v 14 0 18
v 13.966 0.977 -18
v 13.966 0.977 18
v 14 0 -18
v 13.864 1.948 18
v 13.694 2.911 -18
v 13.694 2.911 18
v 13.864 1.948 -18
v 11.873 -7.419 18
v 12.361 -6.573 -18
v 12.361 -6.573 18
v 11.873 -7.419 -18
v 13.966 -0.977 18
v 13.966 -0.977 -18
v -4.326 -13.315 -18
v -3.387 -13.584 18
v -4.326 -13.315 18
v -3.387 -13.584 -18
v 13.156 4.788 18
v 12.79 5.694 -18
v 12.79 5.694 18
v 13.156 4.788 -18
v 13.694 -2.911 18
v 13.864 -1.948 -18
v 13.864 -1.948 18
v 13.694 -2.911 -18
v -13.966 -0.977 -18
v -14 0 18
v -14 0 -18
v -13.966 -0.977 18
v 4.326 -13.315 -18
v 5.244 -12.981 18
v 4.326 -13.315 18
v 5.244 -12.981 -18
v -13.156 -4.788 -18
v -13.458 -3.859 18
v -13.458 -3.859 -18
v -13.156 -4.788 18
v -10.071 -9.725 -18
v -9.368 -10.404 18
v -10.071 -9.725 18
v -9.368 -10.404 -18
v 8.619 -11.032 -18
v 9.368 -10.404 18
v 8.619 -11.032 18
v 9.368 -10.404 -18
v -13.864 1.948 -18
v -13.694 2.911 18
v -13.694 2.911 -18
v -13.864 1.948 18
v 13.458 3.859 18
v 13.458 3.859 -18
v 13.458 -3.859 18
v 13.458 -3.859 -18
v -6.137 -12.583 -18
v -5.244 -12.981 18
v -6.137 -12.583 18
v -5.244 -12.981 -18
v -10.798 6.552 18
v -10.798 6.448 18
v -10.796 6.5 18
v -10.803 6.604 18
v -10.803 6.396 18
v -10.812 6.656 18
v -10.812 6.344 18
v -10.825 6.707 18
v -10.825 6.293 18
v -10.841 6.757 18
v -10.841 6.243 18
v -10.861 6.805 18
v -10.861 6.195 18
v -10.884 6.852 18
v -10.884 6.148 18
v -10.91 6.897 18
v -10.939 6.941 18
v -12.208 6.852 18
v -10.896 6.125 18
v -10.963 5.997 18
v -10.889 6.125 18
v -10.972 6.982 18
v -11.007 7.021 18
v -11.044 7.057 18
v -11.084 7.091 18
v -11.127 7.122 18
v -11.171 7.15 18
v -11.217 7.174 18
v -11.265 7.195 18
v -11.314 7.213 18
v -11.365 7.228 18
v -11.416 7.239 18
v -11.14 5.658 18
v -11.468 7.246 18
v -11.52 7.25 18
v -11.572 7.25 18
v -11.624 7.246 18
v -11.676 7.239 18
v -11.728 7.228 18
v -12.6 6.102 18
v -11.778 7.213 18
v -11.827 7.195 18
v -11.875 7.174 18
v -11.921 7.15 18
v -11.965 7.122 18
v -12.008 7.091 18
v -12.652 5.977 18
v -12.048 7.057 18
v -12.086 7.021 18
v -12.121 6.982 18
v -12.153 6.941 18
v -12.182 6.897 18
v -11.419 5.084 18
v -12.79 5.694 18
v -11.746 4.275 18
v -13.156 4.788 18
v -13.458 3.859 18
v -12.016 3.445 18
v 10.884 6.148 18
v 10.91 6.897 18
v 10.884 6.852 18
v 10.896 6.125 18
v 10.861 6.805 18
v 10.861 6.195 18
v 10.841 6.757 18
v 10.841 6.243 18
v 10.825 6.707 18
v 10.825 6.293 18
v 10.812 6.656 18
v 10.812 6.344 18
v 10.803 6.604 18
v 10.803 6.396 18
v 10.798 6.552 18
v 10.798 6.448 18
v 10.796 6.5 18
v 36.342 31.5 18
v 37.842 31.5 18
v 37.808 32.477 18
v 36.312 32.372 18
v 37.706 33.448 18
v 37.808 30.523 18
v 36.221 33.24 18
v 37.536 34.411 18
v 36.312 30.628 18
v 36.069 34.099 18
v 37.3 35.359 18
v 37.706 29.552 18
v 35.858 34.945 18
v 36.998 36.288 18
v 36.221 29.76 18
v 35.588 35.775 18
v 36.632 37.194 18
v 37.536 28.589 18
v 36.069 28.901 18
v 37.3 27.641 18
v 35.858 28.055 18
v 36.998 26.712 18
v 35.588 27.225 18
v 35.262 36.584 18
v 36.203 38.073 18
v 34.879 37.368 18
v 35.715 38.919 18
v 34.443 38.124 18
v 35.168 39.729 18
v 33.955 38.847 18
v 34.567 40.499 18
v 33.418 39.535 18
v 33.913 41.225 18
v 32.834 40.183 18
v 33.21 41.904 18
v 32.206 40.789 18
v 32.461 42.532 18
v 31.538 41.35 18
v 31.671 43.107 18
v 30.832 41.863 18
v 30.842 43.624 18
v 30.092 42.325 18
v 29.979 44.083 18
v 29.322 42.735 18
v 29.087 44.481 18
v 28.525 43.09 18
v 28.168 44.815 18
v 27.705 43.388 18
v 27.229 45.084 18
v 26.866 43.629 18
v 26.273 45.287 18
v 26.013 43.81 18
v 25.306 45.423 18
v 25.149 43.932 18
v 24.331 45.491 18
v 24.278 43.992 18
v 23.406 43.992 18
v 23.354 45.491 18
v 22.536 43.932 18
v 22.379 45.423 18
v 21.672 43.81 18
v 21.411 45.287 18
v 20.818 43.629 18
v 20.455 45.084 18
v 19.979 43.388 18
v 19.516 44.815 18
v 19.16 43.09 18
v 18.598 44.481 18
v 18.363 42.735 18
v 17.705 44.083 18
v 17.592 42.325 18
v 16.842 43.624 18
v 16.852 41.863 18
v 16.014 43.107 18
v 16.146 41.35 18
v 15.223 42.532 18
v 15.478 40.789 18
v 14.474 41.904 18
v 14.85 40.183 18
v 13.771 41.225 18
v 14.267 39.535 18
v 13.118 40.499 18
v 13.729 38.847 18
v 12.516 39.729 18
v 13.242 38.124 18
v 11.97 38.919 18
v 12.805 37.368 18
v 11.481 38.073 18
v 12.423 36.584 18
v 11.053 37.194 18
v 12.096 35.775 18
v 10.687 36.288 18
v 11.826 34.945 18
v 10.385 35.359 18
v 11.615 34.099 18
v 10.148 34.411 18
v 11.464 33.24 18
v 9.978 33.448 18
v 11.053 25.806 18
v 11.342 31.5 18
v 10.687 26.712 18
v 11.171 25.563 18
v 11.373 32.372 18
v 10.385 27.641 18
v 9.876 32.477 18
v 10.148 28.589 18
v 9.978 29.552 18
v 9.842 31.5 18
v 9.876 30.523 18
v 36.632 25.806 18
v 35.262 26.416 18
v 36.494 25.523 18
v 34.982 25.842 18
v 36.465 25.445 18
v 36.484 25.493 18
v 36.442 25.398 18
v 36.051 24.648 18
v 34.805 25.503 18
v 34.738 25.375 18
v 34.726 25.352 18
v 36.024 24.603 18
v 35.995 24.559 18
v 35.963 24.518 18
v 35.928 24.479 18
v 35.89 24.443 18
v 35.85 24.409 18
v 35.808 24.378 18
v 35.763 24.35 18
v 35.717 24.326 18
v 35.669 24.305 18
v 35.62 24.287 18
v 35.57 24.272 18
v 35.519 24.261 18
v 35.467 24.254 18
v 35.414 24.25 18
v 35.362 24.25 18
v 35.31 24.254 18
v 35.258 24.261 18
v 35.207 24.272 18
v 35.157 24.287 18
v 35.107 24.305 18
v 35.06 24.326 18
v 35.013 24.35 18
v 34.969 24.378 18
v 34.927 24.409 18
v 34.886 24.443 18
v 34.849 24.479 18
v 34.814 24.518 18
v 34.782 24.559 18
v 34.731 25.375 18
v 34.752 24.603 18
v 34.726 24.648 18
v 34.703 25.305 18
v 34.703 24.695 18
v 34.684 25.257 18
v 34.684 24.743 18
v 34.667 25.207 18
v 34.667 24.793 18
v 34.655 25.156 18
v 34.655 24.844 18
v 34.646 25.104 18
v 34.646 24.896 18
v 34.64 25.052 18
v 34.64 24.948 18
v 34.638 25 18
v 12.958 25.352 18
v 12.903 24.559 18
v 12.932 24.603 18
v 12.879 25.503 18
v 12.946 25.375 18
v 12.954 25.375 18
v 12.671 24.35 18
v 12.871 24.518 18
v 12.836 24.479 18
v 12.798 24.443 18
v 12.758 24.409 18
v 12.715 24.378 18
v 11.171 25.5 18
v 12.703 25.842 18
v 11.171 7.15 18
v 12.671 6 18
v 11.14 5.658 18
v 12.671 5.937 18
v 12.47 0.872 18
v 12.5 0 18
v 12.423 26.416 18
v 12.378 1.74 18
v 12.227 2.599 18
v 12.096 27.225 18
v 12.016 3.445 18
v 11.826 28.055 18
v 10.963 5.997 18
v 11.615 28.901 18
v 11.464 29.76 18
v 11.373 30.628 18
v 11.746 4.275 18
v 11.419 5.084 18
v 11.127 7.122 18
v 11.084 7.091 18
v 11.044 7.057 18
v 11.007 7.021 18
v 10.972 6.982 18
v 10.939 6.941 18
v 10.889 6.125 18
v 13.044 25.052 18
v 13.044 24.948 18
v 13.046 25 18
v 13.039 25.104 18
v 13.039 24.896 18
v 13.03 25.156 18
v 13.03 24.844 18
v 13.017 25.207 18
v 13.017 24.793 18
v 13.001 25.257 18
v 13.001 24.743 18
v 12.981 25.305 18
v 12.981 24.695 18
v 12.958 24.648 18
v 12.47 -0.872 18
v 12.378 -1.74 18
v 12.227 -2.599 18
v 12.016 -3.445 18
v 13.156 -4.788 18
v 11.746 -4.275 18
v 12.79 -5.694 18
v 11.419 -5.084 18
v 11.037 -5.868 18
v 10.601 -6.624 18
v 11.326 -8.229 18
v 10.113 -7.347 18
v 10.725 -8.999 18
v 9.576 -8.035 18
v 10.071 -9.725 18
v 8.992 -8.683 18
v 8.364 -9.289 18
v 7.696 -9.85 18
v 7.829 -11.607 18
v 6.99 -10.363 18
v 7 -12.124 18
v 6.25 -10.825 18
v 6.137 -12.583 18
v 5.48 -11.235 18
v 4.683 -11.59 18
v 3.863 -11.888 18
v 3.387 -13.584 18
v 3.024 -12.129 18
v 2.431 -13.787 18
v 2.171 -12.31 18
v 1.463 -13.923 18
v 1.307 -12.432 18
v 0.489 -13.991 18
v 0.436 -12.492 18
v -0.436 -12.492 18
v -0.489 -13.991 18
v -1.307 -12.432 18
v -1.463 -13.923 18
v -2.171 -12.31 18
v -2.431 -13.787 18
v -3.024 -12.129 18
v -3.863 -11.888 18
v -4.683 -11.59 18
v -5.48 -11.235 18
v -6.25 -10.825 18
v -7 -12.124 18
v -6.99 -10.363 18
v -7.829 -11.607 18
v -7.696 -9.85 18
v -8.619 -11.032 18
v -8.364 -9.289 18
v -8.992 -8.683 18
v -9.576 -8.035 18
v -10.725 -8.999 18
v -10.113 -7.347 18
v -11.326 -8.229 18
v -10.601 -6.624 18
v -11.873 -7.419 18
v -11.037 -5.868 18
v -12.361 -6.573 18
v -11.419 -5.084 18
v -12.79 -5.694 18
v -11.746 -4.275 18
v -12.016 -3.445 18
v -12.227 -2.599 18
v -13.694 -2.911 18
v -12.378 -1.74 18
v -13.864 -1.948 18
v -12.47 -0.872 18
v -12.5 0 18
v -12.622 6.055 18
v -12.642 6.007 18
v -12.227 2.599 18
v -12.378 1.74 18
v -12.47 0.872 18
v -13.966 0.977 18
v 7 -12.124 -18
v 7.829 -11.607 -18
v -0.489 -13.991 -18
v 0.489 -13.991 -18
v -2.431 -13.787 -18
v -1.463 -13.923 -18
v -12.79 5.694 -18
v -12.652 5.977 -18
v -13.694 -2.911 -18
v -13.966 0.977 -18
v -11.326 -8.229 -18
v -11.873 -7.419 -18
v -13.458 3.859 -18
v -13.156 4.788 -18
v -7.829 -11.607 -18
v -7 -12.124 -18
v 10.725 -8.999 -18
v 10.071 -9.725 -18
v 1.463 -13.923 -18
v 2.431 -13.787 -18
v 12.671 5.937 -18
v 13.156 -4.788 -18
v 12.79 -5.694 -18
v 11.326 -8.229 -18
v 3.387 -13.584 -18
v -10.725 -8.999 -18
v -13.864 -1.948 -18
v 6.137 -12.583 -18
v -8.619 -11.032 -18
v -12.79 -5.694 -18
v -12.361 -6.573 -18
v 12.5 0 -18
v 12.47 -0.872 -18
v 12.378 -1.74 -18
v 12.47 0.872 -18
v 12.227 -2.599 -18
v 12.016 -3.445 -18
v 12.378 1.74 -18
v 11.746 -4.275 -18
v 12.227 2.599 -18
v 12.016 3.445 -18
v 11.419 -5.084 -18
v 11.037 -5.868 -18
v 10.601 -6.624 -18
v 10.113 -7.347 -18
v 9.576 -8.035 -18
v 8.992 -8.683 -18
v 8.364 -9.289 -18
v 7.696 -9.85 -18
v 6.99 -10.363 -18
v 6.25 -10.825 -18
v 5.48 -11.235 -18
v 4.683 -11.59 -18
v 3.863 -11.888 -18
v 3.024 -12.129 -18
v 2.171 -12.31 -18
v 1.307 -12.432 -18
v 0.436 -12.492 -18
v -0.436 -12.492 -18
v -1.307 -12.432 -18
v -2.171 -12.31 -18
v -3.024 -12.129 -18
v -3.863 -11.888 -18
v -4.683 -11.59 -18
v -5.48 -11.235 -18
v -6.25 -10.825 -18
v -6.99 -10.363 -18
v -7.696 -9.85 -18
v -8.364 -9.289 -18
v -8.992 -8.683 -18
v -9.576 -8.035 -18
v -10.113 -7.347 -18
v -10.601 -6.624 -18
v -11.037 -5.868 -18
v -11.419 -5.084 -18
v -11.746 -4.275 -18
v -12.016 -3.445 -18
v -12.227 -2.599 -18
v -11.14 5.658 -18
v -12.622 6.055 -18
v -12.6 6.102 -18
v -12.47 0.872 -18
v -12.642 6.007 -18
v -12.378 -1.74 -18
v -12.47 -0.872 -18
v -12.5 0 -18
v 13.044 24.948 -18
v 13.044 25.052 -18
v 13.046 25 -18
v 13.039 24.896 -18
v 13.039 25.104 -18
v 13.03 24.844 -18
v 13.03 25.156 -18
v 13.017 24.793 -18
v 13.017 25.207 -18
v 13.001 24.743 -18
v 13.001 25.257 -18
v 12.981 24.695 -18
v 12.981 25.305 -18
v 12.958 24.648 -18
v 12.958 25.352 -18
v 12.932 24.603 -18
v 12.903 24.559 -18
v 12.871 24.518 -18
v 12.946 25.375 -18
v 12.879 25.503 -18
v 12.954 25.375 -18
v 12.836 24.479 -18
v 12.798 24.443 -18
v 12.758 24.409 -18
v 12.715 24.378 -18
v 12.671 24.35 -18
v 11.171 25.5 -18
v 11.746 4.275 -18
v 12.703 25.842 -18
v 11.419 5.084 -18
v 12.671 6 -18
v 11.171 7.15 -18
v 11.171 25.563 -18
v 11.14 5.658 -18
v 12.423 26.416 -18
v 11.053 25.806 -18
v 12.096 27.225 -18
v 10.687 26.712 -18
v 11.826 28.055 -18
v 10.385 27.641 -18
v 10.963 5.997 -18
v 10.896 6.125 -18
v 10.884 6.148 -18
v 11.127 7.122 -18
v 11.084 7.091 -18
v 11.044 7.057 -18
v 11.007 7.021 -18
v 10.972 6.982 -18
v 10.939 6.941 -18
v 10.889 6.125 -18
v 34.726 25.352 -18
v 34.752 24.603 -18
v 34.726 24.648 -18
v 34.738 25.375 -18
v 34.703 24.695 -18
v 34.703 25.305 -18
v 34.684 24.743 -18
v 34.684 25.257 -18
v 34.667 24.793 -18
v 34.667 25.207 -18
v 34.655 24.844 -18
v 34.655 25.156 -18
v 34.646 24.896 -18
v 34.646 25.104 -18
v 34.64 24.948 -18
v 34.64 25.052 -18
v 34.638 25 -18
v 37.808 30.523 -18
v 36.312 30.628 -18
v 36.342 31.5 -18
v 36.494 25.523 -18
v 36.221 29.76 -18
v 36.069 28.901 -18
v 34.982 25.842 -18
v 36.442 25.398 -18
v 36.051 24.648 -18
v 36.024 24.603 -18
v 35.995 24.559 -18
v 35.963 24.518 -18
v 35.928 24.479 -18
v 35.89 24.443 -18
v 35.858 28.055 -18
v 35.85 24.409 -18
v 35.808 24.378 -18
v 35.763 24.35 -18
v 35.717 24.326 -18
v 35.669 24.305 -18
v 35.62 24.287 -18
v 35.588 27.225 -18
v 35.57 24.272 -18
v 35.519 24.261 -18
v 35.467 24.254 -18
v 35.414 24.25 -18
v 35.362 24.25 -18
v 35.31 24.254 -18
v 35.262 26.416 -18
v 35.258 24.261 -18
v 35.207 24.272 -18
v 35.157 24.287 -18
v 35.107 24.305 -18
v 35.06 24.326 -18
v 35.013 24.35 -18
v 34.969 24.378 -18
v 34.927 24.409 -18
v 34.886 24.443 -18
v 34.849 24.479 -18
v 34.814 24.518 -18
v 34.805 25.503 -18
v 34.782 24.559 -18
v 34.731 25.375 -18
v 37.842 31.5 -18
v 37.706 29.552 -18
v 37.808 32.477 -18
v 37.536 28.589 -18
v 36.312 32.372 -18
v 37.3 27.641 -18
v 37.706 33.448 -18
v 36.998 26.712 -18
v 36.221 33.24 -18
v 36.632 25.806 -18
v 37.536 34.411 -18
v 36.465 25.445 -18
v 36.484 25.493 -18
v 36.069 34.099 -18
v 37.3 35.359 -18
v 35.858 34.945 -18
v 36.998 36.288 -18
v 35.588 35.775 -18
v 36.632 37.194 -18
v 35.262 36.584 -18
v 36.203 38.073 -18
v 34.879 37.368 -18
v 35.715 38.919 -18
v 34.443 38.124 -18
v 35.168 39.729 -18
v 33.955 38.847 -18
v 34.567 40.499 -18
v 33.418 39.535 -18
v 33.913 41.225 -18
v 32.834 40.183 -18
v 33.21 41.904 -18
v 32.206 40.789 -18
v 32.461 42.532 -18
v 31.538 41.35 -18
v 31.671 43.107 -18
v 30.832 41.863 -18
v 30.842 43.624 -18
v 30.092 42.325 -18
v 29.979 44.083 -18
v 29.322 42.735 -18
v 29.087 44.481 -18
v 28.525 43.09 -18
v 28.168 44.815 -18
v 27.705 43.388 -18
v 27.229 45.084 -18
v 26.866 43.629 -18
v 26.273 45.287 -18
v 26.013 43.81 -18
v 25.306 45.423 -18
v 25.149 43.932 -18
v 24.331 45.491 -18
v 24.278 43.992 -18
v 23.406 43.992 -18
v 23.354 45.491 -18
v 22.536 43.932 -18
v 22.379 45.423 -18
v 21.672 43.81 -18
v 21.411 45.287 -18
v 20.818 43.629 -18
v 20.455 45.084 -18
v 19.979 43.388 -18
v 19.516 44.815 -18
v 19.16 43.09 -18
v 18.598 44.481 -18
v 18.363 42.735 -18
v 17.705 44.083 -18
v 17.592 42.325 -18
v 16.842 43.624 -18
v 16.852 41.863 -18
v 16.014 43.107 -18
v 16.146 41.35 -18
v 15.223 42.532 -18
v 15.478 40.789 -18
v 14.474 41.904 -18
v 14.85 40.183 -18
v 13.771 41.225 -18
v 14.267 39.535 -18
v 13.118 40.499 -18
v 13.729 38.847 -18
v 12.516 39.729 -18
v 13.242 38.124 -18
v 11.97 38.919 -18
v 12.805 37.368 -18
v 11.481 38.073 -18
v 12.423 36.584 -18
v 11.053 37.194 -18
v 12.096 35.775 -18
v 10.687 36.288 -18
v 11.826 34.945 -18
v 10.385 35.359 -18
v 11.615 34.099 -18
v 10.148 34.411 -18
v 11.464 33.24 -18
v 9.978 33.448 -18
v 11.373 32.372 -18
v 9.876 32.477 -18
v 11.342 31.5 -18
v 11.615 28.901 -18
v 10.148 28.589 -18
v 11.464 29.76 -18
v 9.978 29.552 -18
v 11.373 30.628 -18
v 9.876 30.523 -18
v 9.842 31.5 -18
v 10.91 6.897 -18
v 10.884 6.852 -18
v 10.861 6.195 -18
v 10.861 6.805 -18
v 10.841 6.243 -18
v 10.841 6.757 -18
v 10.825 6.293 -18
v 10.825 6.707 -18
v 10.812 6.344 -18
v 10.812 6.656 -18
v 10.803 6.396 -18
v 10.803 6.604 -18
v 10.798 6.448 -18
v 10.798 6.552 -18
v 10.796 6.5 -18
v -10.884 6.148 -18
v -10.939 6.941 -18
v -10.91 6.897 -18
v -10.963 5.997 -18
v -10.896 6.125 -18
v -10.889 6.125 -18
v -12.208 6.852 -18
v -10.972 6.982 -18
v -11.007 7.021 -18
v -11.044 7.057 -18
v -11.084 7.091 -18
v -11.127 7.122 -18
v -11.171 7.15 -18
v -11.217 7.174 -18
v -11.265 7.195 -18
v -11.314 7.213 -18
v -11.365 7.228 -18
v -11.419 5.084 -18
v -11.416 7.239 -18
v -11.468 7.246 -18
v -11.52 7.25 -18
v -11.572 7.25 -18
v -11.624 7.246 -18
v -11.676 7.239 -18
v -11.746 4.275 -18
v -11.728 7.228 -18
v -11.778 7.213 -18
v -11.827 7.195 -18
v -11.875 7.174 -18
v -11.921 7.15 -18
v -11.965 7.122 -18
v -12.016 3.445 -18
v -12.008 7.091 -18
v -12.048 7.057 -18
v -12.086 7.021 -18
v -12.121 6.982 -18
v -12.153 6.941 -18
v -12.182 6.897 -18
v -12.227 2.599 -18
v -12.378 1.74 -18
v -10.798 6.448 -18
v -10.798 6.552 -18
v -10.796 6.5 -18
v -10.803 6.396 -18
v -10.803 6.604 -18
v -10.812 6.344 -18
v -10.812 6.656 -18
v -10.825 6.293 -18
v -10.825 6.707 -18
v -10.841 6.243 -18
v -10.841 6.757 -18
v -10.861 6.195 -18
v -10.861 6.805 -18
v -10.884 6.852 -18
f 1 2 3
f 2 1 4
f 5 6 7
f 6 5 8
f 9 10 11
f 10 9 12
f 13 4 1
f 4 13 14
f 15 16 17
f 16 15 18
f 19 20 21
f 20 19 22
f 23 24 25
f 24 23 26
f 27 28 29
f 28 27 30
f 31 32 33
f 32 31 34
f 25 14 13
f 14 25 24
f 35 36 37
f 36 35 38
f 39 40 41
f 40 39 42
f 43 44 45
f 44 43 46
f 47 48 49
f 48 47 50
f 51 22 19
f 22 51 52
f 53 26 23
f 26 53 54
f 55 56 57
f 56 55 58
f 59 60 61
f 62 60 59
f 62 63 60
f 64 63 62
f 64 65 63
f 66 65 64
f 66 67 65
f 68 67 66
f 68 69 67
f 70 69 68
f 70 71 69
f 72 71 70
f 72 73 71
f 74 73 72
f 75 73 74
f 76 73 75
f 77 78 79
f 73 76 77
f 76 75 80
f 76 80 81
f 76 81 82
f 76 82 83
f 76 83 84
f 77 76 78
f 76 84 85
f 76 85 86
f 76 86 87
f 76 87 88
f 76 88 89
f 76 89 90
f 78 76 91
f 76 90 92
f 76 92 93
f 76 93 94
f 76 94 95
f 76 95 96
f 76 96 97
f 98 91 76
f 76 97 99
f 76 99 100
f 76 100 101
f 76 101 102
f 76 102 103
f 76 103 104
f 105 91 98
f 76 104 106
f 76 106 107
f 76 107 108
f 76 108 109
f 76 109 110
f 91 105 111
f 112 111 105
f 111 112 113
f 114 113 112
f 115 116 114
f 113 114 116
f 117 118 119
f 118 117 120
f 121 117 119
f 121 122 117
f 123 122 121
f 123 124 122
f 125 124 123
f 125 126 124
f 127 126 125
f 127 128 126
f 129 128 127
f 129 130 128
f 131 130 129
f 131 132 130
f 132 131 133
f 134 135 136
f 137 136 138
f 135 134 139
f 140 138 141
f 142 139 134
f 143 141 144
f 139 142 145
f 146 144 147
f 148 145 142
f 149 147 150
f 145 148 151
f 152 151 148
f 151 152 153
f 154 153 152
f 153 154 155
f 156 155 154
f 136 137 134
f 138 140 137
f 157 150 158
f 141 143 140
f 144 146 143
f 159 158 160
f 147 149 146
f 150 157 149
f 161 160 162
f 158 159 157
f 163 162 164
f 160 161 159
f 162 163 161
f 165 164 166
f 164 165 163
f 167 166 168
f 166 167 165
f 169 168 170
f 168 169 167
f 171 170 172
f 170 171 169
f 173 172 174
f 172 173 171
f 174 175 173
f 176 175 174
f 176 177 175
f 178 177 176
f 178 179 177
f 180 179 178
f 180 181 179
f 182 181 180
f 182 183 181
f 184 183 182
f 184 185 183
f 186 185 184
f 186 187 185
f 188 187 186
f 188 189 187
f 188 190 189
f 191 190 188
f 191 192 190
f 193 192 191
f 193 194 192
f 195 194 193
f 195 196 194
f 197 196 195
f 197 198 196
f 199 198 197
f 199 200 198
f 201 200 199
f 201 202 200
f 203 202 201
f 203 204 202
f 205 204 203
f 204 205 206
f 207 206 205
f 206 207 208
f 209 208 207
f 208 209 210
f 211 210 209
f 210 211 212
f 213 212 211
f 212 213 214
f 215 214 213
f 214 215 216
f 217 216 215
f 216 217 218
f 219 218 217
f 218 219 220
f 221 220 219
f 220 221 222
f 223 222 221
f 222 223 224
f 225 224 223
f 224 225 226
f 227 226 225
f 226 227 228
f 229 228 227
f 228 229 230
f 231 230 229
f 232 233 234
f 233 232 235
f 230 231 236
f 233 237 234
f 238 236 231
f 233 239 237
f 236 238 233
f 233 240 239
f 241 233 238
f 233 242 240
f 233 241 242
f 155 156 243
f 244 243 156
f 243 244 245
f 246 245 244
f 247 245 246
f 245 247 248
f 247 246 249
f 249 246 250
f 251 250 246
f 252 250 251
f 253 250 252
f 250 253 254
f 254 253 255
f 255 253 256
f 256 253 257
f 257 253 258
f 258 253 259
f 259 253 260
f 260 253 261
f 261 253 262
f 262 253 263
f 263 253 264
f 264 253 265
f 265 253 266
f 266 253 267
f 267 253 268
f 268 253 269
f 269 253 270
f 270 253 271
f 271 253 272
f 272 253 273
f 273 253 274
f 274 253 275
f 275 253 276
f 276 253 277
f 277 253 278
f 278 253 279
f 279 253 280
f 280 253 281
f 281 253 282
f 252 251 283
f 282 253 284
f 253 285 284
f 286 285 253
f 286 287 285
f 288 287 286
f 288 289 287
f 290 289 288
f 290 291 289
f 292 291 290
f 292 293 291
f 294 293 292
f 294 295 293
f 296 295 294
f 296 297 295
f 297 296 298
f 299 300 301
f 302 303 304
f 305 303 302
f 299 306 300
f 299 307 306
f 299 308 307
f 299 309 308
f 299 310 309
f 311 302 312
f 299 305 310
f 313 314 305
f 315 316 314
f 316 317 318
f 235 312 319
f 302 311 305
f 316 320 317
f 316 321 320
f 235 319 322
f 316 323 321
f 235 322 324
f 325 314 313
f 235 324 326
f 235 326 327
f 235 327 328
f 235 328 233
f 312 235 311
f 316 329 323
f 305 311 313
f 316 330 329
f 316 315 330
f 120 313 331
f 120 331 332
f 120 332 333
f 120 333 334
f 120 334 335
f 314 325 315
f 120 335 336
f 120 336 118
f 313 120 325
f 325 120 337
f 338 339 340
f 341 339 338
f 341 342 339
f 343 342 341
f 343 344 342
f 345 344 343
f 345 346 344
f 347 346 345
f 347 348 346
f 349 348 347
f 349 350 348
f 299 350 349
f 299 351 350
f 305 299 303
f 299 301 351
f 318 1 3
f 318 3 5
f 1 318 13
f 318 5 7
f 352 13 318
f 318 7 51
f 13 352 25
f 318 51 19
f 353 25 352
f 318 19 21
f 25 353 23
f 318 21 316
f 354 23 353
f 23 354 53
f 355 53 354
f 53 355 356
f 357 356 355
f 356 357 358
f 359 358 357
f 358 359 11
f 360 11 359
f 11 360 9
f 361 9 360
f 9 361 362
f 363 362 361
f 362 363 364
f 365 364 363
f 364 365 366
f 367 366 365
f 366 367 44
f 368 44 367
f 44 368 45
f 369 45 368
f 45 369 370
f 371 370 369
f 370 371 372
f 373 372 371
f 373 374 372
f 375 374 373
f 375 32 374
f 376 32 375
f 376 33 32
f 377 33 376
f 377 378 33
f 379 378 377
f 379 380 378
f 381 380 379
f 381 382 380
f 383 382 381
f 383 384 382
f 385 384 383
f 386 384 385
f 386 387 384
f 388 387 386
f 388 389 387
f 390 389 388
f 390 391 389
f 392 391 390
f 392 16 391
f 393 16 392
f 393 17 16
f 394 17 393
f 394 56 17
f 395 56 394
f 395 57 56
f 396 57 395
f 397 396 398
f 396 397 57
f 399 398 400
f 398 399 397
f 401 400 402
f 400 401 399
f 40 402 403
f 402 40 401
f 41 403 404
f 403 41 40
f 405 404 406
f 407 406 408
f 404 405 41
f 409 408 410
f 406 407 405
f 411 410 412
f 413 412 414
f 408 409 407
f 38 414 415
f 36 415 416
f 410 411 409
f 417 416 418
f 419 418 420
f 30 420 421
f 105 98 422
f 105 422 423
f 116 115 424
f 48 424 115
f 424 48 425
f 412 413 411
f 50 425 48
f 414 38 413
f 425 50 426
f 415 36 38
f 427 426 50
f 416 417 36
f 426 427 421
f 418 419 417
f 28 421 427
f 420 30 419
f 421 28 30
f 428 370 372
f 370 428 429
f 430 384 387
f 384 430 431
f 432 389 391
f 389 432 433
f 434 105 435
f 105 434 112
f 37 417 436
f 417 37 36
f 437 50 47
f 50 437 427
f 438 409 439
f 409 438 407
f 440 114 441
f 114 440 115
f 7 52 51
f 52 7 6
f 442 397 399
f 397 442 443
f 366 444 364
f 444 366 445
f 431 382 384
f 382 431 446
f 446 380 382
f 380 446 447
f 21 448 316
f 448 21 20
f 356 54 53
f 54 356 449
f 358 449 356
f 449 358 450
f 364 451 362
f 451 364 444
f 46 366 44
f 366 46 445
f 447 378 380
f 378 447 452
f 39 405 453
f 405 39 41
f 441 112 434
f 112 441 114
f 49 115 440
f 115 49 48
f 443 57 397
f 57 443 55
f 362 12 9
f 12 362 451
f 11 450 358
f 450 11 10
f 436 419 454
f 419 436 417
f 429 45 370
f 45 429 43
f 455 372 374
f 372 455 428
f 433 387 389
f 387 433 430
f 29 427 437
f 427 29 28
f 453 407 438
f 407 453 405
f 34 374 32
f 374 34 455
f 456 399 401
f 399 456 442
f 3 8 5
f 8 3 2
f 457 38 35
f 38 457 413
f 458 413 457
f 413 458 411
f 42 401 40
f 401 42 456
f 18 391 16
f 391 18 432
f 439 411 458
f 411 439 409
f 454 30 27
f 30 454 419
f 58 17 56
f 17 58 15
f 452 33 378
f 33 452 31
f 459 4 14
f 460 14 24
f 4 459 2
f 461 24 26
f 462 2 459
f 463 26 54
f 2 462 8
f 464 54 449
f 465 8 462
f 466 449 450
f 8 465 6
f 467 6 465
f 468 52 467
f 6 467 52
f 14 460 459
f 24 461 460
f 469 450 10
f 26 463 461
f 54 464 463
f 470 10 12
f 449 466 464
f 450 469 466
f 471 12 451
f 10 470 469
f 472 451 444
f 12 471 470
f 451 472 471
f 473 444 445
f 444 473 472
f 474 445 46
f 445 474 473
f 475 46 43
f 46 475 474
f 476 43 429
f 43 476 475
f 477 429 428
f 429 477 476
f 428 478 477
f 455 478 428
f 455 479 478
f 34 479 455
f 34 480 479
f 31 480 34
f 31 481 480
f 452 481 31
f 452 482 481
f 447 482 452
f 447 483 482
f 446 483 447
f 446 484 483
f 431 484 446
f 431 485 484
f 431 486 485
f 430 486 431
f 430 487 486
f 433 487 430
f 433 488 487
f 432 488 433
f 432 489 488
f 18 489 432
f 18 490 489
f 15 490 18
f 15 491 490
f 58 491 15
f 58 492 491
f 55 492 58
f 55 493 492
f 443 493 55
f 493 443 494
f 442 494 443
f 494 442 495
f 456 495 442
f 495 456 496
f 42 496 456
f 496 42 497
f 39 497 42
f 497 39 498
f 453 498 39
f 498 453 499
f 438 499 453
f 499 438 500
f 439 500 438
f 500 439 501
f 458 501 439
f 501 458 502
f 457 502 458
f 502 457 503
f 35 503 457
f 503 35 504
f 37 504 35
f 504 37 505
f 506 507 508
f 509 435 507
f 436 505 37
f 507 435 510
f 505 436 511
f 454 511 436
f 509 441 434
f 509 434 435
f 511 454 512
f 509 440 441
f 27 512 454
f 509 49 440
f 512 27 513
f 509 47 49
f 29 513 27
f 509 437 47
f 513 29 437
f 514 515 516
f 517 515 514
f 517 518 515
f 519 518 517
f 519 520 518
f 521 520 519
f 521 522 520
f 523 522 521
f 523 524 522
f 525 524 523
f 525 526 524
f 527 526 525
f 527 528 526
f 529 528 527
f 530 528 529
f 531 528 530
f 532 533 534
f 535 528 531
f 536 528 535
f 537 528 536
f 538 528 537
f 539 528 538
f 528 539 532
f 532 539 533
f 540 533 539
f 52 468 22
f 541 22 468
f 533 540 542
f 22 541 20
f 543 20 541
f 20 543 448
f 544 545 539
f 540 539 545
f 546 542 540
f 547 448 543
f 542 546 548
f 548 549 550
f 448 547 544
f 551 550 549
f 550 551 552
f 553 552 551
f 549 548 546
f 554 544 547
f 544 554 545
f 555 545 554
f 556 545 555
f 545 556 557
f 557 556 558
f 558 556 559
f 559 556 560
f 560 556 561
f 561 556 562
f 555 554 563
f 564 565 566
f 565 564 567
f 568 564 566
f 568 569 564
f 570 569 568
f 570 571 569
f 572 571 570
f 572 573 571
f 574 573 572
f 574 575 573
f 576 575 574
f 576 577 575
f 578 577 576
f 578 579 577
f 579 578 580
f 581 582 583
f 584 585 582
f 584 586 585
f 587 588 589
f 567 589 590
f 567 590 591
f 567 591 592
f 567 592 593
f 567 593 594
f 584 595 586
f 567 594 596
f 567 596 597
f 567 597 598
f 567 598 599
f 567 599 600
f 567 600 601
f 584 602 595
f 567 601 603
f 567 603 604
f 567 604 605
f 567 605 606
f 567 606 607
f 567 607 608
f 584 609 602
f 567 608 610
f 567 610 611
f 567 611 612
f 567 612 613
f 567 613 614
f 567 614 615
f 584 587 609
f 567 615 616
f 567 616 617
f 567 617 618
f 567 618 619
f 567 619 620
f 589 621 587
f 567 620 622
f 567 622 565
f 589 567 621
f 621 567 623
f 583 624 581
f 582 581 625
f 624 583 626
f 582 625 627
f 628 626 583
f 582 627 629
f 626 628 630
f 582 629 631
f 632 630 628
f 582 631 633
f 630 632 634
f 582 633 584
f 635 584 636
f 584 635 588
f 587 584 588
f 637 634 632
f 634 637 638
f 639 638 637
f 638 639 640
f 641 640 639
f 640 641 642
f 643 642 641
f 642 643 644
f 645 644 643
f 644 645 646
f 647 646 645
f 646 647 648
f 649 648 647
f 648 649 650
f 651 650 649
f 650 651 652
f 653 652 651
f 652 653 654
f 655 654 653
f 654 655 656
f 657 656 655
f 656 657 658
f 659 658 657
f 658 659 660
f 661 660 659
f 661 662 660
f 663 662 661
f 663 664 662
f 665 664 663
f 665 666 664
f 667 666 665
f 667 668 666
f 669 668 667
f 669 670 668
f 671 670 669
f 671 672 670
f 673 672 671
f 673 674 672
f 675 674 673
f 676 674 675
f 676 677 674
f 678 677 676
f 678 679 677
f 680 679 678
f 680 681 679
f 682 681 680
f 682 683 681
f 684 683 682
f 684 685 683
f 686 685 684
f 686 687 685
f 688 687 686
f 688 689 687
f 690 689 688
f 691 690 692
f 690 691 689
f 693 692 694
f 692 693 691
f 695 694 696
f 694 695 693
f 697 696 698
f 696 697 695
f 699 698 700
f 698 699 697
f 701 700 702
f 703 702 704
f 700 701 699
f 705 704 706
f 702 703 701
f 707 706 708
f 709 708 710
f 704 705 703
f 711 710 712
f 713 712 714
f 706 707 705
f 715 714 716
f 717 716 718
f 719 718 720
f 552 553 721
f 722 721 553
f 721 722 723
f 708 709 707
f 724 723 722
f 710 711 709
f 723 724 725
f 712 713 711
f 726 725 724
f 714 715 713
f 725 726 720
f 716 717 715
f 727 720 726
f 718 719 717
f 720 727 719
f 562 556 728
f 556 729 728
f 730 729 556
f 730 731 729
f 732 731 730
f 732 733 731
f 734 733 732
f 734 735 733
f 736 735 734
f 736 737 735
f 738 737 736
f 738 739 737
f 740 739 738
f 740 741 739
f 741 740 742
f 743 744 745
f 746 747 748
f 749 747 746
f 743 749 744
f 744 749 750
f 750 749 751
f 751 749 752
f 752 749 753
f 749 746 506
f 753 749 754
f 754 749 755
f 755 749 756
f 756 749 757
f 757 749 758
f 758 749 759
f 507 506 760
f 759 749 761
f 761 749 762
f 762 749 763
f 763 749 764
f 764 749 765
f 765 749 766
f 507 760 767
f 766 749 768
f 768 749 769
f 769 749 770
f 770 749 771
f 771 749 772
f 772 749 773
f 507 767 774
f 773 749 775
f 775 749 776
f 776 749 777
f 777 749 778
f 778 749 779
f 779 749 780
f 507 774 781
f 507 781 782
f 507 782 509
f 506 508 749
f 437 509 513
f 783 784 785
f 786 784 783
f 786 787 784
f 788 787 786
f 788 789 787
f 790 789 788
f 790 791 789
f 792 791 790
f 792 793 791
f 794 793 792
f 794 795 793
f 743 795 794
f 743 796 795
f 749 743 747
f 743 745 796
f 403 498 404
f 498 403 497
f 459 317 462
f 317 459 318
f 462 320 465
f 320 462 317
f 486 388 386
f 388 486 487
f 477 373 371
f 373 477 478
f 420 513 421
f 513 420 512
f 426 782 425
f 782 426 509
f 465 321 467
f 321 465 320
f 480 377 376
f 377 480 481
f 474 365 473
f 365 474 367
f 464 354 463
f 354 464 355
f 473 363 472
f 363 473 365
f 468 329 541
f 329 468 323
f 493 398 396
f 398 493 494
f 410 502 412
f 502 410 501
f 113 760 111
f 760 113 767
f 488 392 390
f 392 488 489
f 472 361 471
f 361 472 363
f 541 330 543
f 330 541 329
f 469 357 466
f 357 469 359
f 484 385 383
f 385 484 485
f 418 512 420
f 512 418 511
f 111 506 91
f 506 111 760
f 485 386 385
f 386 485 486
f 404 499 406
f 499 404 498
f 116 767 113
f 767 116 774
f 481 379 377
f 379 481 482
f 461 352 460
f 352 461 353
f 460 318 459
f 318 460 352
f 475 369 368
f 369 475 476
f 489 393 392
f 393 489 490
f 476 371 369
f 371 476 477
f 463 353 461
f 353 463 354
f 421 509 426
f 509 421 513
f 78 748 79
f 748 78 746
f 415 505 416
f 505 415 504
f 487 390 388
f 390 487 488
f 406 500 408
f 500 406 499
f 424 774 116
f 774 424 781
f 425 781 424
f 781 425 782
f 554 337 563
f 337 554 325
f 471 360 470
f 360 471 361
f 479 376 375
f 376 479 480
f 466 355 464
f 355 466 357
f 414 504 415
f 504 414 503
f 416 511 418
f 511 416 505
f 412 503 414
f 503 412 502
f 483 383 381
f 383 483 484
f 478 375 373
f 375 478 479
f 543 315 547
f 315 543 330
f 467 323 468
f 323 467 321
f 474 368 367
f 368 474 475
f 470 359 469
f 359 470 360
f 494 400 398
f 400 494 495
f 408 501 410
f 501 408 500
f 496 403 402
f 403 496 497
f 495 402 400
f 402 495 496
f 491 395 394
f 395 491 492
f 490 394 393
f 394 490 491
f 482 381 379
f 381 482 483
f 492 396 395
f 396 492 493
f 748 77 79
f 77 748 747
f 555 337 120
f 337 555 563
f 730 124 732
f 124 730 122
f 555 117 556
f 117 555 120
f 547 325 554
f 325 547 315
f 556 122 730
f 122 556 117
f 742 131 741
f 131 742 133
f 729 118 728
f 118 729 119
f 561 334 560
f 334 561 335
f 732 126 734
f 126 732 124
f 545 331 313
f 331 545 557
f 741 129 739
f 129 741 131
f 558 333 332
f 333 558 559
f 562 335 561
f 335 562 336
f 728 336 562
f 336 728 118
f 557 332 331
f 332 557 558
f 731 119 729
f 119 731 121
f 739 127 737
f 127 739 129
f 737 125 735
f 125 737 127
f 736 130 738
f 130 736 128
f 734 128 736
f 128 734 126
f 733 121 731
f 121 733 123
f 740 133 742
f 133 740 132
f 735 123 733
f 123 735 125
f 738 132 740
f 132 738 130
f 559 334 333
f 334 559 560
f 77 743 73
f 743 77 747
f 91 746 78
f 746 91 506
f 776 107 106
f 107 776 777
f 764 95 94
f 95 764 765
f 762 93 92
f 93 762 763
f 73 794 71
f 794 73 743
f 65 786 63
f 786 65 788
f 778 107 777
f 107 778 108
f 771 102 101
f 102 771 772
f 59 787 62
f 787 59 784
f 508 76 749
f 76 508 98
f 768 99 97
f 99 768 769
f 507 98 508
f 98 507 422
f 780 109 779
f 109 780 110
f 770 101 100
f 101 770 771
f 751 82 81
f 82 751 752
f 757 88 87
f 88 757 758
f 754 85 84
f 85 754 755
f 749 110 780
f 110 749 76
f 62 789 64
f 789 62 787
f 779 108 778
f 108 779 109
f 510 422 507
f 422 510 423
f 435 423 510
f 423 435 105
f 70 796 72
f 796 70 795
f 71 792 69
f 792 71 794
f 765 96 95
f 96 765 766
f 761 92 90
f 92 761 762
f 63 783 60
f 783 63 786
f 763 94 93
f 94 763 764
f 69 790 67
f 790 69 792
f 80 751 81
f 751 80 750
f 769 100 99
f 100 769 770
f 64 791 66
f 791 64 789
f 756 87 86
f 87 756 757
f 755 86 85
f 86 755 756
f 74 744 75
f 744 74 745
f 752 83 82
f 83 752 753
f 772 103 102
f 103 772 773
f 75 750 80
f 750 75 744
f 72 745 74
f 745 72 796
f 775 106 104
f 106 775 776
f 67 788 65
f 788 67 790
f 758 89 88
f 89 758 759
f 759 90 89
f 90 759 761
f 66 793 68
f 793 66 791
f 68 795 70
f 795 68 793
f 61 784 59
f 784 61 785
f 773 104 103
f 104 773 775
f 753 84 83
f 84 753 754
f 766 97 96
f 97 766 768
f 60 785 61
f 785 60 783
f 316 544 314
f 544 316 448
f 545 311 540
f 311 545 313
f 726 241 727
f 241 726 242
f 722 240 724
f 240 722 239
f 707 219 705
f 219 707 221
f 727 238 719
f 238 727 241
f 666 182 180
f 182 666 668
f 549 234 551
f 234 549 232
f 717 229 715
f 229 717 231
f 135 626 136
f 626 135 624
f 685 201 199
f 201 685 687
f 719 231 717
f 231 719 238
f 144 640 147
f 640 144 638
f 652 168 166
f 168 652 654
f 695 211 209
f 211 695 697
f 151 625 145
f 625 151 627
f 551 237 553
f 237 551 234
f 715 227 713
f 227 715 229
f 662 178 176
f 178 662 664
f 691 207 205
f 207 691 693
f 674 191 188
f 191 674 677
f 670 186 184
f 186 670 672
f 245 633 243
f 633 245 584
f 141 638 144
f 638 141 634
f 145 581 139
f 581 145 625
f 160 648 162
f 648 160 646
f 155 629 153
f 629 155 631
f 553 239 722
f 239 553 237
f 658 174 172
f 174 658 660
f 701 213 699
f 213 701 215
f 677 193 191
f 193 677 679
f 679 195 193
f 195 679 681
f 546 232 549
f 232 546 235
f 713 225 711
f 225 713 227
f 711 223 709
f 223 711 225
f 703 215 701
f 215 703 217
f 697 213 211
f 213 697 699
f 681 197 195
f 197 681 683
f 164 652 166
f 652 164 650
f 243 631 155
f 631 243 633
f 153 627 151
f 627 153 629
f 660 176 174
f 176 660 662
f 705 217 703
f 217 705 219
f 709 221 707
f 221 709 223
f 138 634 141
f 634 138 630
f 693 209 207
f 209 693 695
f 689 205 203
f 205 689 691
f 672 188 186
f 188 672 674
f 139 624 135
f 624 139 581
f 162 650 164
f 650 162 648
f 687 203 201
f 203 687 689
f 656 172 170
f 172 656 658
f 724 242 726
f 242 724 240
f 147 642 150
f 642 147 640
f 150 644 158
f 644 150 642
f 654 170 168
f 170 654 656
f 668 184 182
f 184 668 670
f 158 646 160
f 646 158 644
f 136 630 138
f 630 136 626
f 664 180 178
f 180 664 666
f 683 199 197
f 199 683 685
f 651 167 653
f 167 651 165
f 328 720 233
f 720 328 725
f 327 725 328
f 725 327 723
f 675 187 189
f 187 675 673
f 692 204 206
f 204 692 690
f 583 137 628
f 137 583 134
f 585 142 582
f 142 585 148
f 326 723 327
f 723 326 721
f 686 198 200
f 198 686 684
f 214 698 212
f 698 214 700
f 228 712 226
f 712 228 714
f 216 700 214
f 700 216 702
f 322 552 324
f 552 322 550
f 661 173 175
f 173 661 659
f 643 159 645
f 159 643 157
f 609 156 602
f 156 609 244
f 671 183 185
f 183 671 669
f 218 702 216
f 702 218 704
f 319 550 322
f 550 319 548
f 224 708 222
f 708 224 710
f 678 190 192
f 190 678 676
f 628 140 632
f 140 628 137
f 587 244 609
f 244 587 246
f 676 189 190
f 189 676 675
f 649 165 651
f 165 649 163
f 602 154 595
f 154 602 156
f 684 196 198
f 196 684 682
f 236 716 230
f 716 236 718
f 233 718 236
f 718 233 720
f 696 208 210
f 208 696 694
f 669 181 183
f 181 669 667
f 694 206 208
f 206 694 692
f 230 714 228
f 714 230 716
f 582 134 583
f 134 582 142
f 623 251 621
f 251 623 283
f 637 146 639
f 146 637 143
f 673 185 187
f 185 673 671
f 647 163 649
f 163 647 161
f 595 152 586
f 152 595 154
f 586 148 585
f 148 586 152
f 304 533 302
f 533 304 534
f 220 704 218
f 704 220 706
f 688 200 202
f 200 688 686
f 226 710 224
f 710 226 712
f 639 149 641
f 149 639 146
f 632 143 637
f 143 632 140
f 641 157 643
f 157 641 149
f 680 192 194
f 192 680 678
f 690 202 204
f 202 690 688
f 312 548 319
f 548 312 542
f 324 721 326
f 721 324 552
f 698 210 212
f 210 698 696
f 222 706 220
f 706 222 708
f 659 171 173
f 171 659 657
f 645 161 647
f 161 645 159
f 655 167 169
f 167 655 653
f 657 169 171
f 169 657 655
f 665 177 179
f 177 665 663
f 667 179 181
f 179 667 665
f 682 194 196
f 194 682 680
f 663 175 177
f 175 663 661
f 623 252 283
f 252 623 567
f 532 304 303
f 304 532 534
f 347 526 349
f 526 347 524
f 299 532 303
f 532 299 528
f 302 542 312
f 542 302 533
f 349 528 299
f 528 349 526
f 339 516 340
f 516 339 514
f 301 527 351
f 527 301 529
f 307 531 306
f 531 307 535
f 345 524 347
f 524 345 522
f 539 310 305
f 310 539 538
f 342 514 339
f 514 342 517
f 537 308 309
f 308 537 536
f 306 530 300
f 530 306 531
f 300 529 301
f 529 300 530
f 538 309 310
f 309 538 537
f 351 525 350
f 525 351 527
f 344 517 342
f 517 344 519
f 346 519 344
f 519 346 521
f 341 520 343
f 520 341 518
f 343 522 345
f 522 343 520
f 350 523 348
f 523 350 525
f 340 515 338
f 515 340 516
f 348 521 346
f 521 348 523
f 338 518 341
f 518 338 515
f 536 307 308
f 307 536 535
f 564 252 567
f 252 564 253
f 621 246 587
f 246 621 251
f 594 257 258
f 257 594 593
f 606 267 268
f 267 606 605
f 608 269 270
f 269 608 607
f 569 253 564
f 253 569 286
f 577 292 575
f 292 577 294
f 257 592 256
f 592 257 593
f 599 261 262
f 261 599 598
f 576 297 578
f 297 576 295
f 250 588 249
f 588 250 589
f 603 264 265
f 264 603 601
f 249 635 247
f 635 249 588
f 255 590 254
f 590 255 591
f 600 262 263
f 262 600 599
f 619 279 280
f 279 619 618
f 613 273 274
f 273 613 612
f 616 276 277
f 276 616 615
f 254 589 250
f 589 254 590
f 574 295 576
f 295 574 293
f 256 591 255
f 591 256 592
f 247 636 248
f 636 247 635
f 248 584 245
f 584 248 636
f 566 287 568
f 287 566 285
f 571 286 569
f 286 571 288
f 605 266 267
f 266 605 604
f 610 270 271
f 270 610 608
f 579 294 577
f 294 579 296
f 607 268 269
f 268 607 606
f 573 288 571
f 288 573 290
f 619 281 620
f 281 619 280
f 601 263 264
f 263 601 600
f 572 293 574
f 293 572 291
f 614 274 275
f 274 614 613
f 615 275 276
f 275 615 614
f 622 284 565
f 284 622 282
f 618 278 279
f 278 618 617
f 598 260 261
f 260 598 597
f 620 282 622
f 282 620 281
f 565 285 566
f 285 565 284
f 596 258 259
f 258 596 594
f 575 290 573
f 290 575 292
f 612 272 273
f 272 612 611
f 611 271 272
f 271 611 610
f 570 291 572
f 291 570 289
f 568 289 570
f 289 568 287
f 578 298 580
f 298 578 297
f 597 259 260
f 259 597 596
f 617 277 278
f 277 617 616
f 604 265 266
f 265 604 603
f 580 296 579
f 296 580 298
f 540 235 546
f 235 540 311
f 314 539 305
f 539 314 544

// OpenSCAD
id = 25;
ir = id/2;
id_cut = 19; // where to cut circle in half measuring from the top, NOT origin.
y_cut = (id_cut - ir);
height = 36;
thic = 3;
// Nice round end at end of clip
ball_cyl_r = thic/4;
// Increase r because we have to deal with thic
ball_r = ir + ball_cyl_r;
// this should prob use radians but whatever, it works, it'll never change
ball_y_slide = thic/8;


arm_length = 19; // Starts from end of cut, will exist on the fliped side too

$fn = 90;

union() {
  clip();

  translate([(circle_x(r=ball_r, y=y_cut)*2) + ball_cyl_r, arm_length+ir, 0])
    rotate([0, 0, 180])
    clip();
}



function circle_x(r, y) = sqrt( (r^2) - (y^2));

module clip() {
  od = id+thic;

  union() {
    difference() {
      cylinder(h = height, r = od/2, center=true);
      cylinder(h = height*1.5, r = ir, center=true);

      // Slice the circle to make a clip
      cut_od = od * 1.5;
      cut_h = height * 1.5;
      translate([cut_od/-2, y_cut - ball_y_slide, cut_h/-2])
        cube([cut_od, cut_od, cut_h], center=false);
    }


    // Add 2 cylinders for smooth ends where we slice the circle
    /*
    We need to get the coords of where the circle ends after the cut so we
    can put a cylinder on there to smooth it.

    Given a circle at 0,0 with diameter = `id`, we cut at `id_cut` which is
    from the edge of the circle down.

    Formula:
    x^2 + y^2 = r^2

    ir = r = id/2
    y = id_cut - ir

    We need to solve for x:
    x^2 = r^2 - y^2

    x^2 = sqrt( (ir^2) - (abs(ir - id_cut)^2) )
    */
    // Do both sides of the circle
    for (side = [1, -1]) {
      // Hull 2 circles along the circle's path to clip sharp edges
      color("green", 0.4)
      hull() {
        for (cy_o = [(ball_y_slide * -2), 0]) {
          c_y = y_cut + cy_o;
          c_x = circle_x(r=ball_r, y=c_y);
          translate([side * c_x, c_y, 0])
            cylinder(h = height, r = ball_cyl_r, center=true);
        }
      }
    }

    // Arm
    difference() {
      arm_xtra = thic;
      translate([circle_x(r=ball_r, y=y_cut) - (ball_cyl_r/2), y_cut - arm_xtra, height/-2])
        cube([ball_cyl_r*2, arm_length + arm_xtra, height], center=false);

      // Trim by ID
      cylinder(h = height*1.5, r = ir, center=true);
    }
  }
}
